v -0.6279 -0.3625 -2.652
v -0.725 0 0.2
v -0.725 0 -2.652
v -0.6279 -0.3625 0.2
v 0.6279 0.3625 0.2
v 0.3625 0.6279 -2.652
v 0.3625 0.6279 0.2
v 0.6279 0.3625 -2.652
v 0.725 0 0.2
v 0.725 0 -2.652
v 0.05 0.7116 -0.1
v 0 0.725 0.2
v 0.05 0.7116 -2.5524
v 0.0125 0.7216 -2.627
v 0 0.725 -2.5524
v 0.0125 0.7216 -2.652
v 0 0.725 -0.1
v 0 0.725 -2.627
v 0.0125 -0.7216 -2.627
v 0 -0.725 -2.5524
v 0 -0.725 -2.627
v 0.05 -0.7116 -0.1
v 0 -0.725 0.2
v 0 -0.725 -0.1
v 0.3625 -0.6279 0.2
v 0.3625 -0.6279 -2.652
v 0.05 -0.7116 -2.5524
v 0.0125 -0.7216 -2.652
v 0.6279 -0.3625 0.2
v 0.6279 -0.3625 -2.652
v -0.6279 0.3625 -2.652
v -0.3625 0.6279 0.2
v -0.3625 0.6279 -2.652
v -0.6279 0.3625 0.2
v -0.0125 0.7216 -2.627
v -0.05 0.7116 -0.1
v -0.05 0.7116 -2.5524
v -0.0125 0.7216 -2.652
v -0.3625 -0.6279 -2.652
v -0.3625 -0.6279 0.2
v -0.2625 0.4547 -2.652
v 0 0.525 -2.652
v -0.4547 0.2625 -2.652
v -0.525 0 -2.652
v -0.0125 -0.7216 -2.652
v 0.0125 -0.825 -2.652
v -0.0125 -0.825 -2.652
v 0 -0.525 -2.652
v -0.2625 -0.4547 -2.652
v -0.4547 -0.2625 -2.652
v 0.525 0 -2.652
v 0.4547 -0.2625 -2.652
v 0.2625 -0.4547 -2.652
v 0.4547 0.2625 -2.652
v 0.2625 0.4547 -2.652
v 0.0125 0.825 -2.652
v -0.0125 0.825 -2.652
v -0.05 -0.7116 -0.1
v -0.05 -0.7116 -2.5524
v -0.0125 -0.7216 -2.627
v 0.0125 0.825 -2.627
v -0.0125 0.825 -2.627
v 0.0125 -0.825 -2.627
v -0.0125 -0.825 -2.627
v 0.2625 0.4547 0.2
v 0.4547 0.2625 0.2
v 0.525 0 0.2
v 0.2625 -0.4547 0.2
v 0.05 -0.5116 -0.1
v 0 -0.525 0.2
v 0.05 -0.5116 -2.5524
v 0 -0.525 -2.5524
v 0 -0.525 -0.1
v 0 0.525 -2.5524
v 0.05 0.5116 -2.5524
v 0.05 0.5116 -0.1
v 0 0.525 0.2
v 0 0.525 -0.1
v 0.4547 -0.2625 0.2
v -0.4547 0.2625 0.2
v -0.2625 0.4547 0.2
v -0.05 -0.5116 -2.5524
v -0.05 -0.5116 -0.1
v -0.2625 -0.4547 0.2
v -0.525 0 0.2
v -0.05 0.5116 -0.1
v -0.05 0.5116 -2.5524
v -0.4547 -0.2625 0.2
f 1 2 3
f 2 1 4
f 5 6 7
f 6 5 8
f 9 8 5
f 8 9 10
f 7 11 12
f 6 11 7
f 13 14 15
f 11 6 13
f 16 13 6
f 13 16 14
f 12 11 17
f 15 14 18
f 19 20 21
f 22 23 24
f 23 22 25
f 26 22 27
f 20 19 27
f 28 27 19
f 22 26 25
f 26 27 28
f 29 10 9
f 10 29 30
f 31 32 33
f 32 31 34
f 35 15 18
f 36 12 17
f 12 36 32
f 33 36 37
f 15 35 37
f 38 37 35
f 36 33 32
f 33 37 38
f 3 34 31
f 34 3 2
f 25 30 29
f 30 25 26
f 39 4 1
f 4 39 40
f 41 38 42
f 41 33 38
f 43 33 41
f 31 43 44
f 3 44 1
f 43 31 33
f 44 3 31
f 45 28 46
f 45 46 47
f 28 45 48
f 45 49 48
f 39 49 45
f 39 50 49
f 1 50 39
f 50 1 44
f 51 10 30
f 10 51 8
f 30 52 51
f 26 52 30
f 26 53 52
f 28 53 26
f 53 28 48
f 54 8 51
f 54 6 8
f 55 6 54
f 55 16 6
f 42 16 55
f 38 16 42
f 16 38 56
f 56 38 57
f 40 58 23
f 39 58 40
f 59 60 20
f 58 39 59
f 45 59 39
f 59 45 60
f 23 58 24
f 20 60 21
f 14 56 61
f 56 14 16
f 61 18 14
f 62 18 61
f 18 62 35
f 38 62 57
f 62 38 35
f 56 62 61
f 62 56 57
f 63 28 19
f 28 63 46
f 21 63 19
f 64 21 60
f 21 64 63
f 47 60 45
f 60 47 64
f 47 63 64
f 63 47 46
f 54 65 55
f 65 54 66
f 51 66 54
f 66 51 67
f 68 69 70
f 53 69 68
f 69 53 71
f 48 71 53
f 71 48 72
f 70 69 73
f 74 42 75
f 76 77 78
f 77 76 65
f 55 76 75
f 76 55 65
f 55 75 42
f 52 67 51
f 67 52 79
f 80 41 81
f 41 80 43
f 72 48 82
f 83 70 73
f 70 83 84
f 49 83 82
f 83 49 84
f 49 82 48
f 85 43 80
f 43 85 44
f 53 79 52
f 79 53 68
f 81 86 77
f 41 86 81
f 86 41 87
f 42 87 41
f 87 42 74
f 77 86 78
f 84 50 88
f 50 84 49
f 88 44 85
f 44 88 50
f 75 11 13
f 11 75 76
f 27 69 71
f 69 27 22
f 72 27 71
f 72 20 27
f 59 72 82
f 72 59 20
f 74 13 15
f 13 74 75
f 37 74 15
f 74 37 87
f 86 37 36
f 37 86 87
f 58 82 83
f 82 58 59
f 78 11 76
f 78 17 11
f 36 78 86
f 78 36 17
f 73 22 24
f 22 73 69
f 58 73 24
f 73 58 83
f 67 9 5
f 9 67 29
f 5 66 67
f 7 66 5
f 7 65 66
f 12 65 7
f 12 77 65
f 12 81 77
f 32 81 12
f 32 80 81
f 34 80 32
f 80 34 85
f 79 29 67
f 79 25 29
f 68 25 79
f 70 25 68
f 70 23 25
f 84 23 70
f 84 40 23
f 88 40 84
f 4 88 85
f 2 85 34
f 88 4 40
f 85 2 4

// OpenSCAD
tolerance=0.075;
hole_radius=0.05;
grid_hole_radius=0.05;
outer_radius=1;
thickness=0.2;
hole_attach_height=0.05;
compressed_height=3.3134;
extended_height=5.8654;
next_hole_radius=0.05;
next_hole_attach_height=0.05;
next_inner=0.8;
hole_twist=0.0;
//other params
eps = tolerance/100;
rail_attach_height = grid_hole_radius + hole_attach_height;
inner_radius = outer_radius - thickness;
rail_attach_width = rail_attach_height;
fn = 12;
fnh = 6;

module angled_cylinder(angle_deg_y, _h, _r, angle_deg_x = 0) {
    rotate([angle_deg_x, angle_deg_y, 0]) { // Rotate the cylinder 
            cylinder(h = _h, r = _r, center = true, $fn = fnh);
        }
}

module top_joint() {
    total_height = extended_height - compressed_height + rail_attach_height;
    difference() {
        union() {
            //outer cylinder
            cylinder(h=extended_height - compressed_height + rail_attach_height, r = inner_radius - tolerance, $fn = fn);
            
            //rail attachments
            translate([-(rail_attach_width - tolerance)/2,inner_radius - tolerance - thickness/2, 0])
            cube([rail_attach_width - tolerance, thickness, rail_attach_height - tolerance]);
            
            translate([-(rail_attach_width - tolerance)/2,-inner_radius + tolerance - thickness/2, 0])
            cube([rail_attach_width - tolerance, thickness, rail_attach_height - tolerance]);
            
        }
        //shell out inner cylinder
        translate([0,0,-eps/2])
        cylinder(h=extended_height - compressed_height + rail_attach_height + eps, r= inner_radius - tolerance - thickness, $fn = fn);
        
        translate([0,0,rail_attach_height + (extended_height - compressed_height)/2])
        cube([grid_hole_radius*2, inner_radius*2 + eps, extended_height - compressed_height + eps],center=true);
    }
    
    //to tie strings
//    difference() {
//        union() {
//            //loop for strings
//            translate([0, inner_radius - tolerance - grid_hole_radius - hole_attach_height,0])
//            cylinder(h=rail_attach_height - tolerance,r=grid_hole_radius + hole_attach_height,$fn=fnh);
//            
//            translate([0, -inner_radius + tolerance + grid_hole_radius + hole_attach_height,0])
//            cylinder(h=rail_attach_height - tolerance,r=grid_hole_radius + hole_attach_height,$fn=fnh);
//        }
//        
//        translate([0,0,-eps/2]) {
//            //hole for string loops
//        translate([0, inner_radius - tolerance - grid_hole_radius - hole_attach_height,0])
//            cylinder(h=rail_attach_height-tolerance + eps,r=grid_hole_radius,$fn=fnh);
//            
//        translate([0, -inner_radius + tolerance + grid_hole_radius + hole_attach_height,0])
//        cylinder(h=rail_attach_height - tolerance + eps,r=grid_hole_radius,$fn=fnh);
//        }
//    }
    
    
    //attachment segment
    attach_thickness = hole_attach_height;
    difference() {
        union() {
            //attachment for smaller cylinder
            translate([0,0,-attach_thickness*2 + total_height])
            cylinder(h=attach_thickness*2, r=inner_radius - tolerance, $fn=fn);
            translate([0,0,-attach_thickness*2 + total_height])
            cylinder(h=attach_thickness*2, r1=inner_radius - tolerance, r2=next_inner - tolerance - thickness, $fn=fn);
            
            translate([0,0,total_height])
            //small cylinder
            cylinder(h=next_hole_radius*2 + next_hole_attach_height * 2, r = next_inner - tolerance, $fn=fn);
        }
        
        //shelling
        translate([0,0, -attach_thickness*2 - eps/2 + total_height])
        cylinder(h=next_hole_radius*2 + next_hole_attach_height * 2 + attach_thickness*2 + eps, r = min(inner_radius, next_inner - tolerance - thickness), $fn=fn);
        
        //holes for screws
//        translate([0,0,next_hole_attach_height + next_hole_radius + total_height]) {
//            angled_cylinder(0, (next_inner + thickness + eps) * 2,  next_hole_radius, 90);
//            angled_cylinder(90, (next_inner + thickness + eps) * 2, next_hole_radius, 0);
//        }
    }
 
}

translate([0,0,-extended_height+compressed_height-rail_attach_height])
top_joint();
